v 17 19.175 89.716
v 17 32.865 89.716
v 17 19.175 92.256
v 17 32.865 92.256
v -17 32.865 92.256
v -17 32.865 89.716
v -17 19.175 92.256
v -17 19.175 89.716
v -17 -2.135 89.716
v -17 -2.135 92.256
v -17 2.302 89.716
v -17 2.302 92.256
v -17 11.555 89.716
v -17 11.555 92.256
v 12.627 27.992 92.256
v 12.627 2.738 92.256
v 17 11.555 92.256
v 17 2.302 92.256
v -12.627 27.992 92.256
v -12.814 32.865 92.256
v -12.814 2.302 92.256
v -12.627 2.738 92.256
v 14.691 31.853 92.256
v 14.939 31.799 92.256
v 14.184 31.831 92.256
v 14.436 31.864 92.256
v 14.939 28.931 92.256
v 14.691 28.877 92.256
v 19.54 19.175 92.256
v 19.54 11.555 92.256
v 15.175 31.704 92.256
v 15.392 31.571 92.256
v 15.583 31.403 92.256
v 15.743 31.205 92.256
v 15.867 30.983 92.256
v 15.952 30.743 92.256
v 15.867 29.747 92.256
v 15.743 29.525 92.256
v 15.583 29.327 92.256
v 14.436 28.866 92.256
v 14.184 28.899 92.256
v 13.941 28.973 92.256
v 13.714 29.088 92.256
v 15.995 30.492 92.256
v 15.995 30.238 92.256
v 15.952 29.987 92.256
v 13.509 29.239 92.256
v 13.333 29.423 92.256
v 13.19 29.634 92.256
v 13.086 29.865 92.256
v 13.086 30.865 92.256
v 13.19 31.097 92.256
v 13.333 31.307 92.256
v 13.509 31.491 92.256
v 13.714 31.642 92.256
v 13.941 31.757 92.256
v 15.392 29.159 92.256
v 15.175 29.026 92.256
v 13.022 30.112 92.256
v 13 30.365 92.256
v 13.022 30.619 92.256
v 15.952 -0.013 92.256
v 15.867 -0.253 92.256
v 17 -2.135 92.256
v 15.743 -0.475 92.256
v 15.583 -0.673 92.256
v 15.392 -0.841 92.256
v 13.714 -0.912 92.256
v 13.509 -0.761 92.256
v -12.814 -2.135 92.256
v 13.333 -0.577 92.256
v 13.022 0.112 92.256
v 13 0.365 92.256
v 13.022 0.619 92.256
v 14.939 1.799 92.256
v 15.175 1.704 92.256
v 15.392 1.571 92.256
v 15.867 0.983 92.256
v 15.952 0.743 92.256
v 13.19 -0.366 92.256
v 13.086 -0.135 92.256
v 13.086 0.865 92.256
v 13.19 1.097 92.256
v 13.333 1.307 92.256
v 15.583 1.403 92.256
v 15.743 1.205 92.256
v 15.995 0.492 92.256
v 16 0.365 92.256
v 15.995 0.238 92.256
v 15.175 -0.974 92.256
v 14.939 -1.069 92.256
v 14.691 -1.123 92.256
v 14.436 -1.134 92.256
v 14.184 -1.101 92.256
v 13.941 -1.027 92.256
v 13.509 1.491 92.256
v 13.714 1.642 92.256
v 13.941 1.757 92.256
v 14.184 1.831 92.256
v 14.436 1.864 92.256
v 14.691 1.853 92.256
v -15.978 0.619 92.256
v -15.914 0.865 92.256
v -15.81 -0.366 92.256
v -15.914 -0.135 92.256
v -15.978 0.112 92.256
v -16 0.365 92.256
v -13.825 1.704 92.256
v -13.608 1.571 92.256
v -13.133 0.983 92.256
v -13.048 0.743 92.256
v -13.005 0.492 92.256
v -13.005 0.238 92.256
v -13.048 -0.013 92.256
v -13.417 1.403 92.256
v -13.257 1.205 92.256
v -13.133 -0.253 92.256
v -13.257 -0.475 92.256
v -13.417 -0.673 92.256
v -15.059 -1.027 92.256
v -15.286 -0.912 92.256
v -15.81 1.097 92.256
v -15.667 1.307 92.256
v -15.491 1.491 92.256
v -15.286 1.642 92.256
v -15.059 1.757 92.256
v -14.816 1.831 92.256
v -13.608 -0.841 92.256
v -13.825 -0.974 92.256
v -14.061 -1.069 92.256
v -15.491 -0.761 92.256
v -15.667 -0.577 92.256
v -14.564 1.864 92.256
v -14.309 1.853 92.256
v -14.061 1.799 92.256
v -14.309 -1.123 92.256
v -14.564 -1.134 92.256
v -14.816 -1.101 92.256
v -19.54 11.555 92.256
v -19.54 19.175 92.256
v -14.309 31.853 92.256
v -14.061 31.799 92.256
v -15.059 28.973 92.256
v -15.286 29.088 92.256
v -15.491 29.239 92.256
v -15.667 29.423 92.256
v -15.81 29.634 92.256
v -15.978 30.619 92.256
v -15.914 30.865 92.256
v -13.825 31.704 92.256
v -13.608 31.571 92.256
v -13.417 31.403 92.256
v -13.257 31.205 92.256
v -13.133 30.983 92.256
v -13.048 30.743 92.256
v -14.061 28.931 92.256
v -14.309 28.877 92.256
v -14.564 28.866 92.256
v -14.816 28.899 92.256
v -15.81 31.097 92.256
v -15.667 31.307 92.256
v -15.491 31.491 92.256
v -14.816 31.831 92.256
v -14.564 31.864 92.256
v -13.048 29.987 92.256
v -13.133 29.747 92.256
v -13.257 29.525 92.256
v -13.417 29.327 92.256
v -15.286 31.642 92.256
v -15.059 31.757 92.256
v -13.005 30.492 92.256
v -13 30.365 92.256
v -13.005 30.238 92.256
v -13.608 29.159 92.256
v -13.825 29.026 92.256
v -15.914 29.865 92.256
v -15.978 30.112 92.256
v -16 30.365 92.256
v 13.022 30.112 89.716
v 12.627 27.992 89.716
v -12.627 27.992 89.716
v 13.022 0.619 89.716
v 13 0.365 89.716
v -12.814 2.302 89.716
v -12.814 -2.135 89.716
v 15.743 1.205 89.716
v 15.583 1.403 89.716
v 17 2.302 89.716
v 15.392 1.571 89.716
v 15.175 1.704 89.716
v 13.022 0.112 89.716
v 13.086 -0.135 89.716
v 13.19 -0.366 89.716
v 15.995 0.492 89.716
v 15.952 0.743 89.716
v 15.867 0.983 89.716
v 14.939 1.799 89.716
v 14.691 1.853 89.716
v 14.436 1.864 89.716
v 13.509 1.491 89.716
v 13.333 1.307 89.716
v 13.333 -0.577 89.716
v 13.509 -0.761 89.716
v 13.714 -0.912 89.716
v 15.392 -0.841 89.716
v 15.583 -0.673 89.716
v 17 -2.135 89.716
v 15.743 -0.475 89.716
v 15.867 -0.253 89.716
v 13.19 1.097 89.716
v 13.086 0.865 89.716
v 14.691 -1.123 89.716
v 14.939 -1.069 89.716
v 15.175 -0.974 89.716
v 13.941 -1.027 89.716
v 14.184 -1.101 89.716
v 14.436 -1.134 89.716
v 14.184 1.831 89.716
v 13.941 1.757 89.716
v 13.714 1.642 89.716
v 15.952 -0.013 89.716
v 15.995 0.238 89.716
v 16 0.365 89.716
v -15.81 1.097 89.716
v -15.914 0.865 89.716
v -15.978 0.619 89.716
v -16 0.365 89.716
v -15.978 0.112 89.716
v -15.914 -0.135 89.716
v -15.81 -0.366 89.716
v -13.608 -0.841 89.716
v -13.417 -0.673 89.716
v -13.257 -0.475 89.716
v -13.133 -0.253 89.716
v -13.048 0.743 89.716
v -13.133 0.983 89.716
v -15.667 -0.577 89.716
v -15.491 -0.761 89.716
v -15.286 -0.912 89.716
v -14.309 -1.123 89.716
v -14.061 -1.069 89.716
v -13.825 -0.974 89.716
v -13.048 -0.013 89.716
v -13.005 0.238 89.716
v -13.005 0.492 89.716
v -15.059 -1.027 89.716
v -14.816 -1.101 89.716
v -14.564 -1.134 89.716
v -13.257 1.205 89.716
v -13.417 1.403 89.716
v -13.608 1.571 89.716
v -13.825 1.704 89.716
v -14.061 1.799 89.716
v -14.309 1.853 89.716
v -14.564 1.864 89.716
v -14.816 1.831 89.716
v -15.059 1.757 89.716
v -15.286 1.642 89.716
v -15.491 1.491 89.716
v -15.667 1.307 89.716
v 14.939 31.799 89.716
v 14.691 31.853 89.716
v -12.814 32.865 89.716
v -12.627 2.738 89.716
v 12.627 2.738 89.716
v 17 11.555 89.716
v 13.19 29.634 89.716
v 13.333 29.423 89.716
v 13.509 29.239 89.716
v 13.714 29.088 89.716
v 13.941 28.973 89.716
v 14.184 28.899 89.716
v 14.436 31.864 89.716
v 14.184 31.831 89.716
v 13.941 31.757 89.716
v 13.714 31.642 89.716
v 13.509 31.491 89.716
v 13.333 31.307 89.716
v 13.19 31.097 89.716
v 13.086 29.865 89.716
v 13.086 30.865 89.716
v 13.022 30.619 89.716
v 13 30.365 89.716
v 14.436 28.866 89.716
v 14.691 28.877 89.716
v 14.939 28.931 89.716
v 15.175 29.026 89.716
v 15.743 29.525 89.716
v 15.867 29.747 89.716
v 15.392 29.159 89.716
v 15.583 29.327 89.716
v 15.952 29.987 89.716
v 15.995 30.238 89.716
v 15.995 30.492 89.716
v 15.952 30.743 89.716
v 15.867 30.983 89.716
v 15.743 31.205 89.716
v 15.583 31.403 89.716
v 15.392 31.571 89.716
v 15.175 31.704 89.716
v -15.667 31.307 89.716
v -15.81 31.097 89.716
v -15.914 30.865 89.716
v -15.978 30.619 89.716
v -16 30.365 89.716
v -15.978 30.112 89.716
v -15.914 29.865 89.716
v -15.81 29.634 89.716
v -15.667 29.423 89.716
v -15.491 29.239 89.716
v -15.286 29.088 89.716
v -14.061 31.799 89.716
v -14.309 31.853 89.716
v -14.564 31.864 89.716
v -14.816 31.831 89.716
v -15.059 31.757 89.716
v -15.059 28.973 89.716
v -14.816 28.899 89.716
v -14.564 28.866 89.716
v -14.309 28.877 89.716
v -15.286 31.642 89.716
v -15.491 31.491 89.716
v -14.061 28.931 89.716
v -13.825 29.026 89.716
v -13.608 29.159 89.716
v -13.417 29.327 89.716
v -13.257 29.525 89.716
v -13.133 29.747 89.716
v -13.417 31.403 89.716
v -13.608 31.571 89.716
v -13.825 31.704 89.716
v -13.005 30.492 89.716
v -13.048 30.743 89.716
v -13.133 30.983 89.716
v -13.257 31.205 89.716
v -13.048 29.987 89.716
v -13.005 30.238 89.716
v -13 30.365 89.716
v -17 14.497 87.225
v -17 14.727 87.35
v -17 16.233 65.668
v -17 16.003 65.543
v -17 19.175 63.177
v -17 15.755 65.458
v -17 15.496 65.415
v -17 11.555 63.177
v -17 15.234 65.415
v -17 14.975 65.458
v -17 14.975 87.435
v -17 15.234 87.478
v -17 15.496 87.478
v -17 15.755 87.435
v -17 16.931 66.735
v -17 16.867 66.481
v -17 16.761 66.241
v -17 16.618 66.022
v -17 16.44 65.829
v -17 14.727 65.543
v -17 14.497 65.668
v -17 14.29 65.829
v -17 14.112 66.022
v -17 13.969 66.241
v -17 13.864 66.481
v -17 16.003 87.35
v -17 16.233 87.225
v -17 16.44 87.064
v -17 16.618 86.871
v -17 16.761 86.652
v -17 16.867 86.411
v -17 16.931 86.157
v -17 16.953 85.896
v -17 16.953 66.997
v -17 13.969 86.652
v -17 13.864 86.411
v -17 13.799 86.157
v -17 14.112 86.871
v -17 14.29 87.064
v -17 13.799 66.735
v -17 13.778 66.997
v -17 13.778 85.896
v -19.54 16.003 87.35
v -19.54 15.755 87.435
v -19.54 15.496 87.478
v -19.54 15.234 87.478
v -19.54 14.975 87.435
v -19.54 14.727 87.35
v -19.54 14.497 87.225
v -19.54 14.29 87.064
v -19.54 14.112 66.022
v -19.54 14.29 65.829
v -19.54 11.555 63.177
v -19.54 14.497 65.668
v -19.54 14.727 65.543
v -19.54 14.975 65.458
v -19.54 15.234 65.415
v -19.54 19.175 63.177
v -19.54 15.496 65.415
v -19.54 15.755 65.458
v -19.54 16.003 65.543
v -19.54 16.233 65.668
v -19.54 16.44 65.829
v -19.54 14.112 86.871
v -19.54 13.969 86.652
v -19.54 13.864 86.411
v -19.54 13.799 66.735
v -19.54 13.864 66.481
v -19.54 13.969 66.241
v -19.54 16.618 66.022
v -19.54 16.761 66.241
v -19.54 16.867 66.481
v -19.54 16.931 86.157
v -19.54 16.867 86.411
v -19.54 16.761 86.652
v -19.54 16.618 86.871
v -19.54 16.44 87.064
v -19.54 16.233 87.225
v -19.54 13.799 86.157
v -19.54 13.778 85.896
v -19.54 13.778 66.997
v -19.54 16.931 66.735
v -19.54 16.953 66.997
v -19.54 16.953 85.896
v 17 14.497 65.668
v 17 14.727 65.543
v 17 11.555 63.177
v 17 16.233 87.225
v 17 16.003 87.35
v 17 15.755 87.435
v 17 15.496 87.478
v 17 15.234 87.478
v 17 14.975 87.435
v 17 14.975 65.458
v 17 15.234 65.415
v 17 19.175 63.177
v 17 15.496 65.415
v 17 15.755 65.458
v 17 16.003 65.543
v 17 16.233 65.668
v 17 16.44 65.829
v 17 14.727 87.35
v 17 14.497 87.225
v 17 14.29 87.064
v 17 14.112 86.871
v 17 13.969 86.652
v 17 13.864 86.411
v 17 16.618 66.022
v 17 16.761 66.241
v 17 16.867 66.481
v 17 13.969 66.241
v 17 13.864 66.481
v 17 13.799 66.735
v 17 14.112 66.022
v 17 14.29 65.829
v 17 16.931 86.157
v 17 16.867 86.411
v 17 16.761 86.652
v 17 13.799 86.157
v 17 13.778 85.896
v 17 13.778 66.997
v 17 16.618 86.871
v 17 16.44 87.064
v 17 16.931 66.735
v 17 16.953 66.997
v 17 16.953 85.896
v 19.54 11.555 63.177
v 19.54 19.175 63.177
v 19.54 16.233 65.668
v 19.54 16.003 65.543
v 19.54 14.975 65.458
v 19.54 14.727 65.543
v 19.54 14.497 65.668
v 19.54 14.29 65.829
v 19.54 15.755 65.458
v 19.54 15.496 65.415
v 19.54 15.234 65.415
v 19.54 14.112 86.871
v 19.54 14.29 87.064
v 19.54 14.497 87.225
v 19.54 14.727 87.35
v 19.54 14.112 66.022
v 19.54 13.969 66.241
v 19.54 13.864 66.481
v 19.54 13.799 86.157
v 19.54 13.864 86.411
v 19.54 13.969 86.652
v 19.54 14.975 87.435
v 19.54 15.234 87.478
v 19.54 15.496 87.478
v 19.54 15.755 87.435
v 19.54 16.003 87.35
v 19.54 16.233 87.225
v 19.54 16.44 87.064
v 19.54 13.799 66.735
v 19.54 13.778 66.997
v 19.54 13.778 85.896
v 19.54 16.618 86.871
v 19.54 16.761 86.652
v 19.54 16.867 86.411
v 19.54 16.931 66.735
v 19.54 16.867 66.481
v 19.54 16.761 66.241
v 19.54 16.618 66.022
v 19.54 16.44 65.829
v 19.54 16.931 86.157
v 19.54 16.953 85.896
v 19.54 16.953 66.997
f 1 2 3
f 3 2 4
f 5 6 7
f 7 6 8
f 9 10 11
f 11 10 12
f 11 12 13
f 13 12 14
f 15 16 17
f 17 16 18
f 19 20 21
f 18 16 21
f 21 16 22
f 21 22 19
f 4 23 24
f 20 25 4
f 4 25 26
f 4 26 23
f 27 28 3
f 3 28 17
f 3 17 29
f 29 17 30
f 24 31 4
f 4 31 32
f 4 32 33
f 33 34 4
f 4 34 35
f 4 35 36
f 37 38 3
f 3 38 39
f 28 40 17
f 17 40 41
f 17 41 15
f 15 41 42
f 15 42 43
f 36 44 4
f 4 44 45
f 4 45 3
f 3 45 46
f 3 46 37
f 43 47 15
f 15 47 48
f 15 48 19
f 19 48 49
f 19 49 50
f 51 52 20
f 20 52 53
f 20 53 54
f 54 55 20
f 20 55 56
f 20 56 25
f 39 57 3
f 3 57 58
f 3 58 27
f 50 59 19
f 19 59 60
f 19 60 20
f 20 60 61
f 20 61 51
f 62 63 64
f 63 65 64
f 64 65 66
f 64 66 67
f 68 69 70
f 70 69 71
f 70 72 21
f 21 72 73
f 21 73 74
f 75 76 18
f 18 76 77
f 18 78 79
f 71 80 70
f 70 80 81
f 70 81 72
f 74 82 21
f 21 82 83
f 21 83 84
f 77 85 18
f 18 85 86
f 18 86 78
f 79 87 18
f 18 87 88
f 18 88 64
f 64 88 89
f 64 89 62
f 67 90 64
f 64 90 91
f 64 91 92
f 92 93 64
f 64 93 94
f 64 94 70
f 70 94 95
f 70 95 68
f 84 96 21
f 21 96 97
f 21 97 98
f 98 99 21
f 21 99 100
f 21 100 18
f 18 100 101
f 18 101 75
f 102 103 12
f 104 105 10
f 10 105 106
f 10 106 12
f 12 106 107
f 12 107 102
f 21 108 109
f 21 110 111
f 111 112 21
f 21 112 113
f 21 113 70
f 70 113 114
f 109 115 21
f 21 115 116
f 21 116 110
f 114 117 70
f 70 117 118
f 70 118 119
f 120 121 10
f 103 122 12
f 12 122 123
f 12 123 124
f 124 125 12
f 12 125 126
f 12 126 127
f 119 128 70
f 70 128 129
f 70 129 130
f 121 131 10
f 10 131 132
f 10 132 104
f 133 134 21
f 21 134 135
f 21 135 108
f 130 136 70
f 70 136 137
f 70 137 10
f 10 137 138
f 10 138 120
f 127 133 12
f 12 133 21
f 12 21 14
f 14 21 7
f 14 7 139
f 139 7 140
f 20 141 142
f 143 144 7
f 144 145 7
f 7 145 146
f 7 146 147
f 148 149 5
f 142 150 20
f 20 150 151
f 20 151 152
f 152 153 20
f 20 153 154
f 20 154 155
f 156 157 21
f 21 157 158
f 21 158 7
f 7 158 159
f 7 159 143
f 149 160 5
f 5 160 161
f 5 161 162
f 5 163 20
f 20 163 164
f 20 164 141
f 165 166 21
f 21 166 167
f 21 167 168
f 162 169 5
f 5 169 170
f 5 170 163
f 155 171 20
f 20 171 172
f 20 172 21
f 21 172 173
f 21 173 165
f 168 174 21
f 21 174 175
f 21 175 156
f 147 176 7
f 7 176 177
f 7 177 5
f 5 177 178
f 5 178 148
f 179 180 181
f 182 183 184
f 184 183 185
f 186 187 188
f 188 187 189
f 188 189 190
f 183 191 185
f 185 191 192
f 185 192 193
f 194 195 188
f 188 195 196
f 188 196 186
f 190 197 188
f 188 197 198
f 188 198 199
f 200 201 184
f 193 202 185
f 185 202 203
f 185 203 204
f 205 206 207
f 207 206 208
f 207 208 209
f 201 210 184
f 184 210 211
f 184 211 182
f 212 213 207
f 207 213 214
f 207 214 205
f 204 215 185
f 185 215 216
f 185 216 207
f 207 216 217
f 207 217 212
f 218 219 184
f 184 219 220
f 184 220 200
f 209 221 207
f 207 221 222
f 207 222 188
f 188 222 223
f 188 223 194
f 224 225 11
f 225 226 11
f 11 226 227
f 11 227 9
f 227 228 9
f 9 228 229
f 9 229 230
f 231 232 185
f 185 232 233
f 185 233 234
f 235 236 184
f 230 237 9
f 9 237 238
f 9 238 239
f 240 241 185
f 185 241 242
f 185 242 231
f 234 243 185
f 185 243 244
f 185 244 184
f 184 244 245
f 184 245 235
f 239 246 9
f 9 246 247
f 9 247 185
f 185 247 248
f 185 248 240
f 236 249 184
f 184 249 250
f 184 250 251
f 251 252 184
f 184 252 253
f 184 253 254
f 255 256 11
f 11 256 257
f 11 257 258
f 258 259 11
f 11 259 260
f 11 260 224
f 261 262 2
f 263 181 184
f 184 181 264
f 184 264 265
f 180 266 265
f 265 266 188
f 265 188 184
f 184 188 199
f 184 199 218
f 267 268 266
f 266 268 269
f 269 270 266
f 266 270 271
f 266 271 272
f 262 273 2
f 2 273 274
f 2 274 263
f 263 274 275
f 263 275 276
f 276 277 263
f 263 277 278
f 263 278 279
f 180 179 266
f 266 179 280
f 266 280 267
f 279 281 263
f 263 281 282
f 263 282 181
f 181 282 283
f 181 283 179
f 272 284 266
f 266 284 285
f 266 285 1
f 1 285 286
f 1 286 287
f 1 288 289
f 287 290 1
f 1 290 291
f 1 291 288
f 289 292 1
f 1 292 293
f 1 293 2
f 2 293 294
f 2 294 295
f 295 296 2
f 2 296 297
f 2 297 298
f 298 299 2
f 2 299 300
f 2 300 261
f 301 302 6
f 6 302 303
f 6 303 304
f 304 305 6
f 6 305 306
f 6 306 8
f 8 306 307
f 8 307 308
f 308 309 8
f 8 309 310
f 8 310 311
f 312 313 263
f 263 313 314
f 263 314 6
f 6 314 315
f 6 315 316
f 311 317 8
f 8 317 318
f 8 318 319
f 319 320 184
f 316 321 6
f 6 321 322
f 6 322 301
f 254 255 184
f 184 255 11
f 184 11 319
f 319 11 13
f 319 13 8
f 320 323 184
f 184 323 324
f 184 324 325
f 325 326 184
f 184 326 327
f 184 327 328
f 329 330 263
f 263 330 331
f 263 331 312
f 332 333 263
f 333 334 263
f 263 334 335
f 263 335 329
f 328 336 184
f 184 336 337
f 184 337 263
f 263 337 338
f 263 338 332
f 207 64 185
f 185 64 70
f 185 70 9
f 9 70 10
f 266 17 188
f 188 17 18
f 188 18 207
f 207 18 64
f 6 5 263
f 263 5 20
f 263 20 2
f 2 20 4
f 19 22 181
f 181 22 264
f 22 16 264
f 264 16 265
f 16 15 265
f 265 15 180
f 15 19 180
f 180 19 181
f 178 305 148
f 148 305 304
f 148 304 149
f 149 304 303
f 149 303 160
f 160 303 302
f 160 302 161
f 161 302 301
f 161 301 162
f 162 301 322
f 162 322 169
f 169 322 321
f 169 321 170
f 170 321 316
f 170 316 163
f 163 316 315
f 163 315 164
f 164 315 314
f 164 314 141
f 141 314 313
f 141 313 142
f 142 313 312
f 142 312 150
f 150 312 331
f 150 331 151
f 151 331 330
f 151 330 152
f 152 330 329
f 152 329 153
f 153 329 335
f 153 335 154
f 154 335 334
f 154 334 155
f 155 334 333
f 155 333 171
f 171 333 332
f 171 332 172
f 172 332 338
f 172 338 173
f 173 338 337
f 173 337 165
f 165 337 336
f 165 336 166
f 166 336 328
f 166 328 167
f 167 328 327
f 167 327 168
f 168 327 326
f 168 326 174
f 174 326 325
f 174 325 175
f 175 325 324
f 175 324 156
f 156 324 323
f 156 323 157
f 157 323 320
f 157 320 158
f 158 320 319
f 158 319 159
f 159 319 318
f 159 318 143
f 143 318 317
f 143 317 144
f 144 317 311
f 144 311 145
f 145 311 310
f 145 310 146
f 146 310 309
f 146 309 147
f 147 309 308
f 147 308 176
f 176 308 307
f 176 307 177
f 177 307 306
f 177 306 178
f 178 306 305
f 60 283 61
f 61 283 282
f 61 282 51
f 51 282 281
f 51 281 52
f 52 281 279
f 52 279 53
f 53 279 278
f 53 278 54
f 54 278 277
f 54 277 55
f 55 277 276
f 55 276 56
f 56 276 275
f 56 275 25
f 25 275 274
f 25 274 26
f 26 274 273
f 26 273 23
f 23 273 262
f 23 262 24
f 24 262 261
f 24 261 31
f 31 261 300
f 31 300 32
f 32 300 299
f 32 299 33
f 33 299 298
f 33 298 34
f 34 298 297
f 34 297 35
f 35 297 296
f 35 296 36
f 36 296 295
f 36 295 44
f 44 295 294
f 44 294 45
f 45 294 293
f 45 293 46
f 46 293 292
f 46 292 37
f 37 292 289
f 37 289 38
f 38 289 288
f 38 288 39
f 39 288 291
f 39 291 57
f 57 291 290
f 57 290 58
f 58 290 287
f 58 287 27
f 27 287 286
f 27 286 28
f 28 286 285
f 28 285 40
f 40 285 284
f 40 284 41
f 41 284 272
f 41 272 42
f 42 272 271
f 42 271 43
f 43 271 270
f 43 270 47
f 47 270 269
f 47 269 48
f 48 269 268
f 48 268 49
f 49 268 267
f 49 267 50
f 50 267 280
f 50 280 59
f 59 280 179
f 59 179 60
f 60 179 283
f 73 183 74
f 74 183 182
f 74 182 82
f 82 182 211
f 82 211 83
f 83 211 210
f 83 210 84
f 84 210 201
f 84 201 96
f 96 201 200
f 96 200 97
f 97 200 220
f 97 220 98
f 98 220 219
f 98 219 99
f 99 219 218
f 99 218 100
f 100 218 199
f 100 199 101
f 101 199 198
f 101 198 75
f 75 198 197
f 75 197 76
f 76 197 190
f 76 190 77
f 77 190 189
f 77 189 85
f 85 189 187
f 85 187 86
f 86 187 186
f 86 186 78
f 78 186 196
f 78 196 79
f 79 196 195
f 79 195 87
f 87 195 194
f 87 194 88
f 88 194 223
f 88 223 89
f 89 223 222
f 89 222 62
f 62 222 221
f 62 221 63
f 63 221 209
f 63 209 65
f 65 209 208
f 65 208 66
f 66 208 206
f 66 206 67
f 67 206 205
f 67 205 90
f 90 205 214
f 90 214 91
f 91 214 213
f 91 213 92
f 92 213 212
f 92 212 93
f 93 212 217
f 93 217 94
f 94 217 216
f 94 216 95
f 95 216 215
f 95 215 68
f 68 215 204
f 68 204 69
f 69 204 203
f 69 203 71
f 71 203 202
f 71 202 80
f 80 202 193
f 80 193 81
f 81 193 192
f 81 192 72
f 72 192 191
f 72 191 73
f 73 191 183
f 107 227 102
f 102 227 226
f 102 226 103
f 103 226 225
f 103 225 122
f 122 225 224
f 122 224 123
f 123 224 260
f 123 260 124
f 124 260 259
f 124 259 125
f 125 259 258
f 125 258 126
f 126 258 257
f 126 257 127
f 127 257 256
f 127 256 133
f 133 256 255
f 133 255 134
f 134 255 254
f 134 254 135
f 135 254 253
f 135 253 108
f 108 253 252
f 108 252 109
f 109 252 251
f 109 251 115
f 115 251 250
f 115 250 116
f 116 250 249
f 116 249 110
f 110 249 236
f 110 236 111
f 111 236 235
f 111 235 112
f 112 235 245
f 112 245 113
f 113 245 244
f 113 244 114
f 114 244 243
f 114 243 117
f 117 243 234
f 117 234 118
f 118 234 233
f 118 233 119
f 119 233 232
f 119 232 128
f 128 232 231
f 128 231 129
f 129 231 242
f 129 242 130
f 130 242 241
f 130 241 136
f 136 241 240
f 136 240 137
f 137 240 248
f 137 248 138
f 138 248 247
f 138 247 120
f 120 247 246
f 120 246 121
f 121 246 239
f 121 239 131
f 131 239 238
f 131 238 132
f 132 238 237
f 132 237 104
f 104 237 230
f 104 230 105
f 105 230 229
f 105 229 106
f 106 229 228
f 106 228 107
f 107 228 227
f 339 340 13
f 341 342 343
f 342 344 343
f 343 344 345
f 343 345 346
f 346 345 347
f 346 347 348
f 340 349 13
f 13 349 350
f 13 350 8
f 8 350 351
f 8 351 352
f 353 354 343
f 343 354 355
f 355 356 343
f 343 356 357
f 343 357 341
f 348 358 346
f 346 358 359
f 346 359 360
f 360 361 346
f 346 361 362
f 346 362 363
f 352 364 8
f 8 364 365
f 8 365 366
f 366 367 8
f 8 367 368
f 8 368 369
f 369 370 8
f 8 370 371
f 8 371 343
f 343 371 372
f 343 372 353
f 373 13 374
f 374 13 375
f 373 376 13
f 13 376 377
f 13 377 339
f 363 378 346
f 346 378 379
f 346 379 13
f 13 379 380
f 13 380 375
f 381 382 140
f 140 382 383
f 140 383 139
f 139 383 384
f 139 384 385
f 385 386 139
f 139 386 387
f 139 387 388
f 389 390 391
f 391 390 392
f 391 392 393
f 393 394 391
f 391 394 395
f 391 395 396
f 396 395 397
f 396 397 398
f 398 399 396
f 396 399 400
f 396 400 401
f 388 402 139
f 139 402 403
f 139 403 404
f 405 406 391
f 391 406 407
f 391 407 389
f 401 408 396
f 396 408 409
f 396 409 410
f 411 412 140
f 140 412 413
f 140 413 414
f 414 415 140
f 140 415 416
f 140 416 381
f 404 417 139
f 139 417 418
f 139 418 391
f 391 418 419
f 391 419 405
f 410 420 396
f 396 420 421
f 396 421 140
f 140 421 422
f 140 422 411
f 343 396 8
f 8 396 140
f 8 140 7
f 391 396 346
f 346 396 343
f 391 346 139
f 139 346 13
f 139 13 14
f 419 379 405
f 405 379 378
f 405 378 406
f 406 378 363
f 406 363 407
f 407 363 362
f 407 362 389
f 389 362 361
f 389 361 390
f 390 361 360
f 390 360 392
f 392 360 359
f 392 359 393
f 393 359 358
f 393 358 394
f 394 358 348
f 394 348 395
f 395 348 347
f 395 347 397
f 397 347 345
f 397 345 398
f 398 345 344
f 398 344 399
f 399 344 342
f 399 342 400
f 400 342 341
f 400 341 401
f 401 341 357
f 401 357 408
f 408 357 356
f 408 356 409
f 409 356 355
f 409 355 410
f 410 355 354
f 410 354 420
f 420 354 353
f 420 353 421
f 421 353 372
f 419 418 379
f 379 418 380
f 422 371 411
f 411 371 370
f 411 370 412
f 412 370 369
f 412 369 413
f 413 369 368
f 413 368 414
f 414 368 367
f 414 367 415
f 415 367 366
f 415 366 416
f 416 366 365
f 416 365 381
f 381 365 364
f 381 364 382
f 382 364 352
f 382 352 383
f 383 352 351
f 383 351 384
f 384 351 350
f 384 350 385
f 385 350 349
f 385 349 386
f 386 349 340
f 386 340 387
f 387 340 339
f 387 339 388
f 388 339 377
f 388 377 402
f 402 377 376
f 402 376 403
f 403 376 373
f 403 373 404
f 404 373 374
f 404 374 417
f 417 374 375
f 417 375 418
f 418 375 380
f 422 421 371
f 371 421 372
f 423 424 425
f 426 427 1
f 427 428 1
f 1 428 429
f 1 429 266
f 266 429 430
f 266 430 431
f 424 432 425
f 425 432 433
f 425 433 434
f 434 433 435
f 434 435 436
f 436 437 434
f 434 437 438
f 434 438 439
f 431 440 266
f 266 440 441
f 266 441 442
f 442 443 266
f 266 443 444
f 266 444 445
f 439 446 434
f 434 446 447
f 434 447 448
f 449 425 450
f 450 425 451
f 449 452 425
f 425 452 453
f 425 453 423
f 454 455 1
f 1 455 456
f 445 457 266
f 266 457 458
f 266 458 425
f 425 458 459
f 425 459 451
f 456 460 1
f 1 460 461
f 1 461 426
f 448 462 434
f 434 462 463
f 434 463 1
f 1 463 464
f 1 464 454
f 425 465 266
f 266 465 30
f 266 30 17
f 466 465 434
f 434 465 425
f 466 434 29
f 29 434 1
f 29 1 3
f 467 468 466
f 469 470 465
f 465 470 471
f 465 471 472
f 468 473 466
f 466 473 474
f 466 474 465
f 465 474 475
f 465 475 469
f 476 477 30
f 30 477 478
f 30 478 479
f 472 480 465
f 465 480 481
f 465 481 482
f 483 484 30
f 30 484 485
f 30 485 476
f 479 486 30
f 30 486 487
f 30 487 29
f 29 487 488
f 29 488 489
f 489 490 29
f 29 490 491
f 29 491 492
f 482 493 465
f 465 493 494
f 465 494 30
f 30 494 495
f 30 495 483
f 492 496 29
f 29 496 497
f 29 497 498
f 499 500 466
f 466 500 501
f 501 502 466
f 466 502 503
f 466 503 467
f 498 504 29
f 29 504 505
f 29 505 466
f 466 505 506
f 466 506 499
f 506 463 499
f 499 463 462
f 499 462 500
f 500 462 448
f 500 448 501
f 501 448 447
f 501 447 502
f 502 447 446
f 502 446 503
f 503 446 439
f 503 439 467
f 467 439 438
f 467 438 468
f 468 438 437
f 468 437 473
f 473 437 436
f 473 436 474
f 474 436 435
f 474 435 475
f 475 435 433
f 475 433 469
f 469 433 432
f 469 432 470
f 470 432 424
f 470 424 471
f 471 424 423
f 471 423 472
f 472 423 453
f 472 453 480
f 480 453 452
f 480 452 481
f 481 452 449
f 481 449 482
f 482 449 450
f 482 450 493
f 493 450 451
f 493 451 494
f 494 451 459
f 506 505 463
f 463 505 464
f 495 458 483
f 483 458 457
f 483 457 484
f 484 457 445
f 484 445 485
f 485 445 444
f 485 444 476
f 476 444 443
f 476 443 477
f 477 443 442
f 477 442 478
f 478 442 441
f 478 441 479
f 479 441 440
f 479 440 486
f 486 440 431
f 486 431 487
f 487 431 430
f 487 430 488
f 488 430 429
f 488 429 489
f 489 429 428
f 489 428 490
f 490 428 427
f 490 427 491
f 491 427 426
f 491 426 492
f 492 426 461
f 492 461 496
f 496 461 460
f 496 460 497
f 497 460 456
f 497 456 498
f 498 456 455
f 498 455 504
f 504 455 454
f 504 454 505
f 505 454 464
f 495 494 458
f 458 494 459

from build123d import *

# Parameters (mm, degrees)
SKETCH1_W           = 34
SKETCH1_H           = 35
SKETCH1_R           = 1.5
SKETCH1_W_2         = 25.254046856
SKETCH1_H_2         = 25.254046855
BOSS_EXTRUDE1_DEPTH = 2.54
BOSS_EXTRUDE2_DEPTH = 2.54


with BuildPart() as part:
    # Sketch1 → Boss-Extrude1 (new body)
    with BuildSketch(Plane.XY.offset(89.71558927)):
        with Locations((0, 15.365074249)):
            Rectangle(SKETCH1_W, SKETCH1_H)
        with Locations((-14.5, 30.365074249)):
            Circle(SKETCH1_R, mode=Mode.SUBTRACT)
        with Locations((14.5, 30.365074249)):
            Circle(SKETCH1_R, mode=Mode.SUBTRACT)
        with Locations((14.5, 0.365074249)):
            Circle(SKETCH1_R, mode=Mode.SUBTRACT)
        with Locations((-14.5, 0.365074249)):
            Circle(SKETCH1_R, mode=Mode.SUBTRACT)
        with Locations((0, 15.36507425)):
            Rectangle(SKETCH1_W_2, SKETCH1_H_2, mode=Mode.SUBTRACT)
    extrude(amount=BOSS_EXTRUDE1_DEPTH)

    # Sketch2 → Boss-Extrude2 (add)
    with BuildSketch(Plane.ZY.offset(17)):
        Polygon((63.176971269, 11.555074249), (89.71558927, 11.555074249), (92.25558927, 11.555074249), (92.25558927, 19.175074249), (89.71558927, 19.175074249), (63.176971269, 19.175074249), align=None)
        with BuildLine():
            Line((66.996602623, 16.952574249), (85.895957916, 16.952574249))
            ThreePointArc((85.895957916, 16.952574249), (87.483457916, 15.365074249), (85.895957916, 13.777574249))
            Line((85.895957916, 13.777574249), (66.996602623, 13.777574249))
            ThreePointArc((66.996602623, 13.777574249), (65.409102623, 15.365074249), (66.996602623, 16.952574249))
        make_face(mode=Mode.SUBTRACT)
    boss_extrude2 = extrude(amount=BOSS_EXTRUDE2_DEPTH)

    # Mirror1: Boss-Extrude2 across plane
    add(boss_extrude2.mirror(Plane(origin=(0, 0, 0), x_dir=(0, 0, 1), z_dir=(1, 0, 0))))


solid = part.part
